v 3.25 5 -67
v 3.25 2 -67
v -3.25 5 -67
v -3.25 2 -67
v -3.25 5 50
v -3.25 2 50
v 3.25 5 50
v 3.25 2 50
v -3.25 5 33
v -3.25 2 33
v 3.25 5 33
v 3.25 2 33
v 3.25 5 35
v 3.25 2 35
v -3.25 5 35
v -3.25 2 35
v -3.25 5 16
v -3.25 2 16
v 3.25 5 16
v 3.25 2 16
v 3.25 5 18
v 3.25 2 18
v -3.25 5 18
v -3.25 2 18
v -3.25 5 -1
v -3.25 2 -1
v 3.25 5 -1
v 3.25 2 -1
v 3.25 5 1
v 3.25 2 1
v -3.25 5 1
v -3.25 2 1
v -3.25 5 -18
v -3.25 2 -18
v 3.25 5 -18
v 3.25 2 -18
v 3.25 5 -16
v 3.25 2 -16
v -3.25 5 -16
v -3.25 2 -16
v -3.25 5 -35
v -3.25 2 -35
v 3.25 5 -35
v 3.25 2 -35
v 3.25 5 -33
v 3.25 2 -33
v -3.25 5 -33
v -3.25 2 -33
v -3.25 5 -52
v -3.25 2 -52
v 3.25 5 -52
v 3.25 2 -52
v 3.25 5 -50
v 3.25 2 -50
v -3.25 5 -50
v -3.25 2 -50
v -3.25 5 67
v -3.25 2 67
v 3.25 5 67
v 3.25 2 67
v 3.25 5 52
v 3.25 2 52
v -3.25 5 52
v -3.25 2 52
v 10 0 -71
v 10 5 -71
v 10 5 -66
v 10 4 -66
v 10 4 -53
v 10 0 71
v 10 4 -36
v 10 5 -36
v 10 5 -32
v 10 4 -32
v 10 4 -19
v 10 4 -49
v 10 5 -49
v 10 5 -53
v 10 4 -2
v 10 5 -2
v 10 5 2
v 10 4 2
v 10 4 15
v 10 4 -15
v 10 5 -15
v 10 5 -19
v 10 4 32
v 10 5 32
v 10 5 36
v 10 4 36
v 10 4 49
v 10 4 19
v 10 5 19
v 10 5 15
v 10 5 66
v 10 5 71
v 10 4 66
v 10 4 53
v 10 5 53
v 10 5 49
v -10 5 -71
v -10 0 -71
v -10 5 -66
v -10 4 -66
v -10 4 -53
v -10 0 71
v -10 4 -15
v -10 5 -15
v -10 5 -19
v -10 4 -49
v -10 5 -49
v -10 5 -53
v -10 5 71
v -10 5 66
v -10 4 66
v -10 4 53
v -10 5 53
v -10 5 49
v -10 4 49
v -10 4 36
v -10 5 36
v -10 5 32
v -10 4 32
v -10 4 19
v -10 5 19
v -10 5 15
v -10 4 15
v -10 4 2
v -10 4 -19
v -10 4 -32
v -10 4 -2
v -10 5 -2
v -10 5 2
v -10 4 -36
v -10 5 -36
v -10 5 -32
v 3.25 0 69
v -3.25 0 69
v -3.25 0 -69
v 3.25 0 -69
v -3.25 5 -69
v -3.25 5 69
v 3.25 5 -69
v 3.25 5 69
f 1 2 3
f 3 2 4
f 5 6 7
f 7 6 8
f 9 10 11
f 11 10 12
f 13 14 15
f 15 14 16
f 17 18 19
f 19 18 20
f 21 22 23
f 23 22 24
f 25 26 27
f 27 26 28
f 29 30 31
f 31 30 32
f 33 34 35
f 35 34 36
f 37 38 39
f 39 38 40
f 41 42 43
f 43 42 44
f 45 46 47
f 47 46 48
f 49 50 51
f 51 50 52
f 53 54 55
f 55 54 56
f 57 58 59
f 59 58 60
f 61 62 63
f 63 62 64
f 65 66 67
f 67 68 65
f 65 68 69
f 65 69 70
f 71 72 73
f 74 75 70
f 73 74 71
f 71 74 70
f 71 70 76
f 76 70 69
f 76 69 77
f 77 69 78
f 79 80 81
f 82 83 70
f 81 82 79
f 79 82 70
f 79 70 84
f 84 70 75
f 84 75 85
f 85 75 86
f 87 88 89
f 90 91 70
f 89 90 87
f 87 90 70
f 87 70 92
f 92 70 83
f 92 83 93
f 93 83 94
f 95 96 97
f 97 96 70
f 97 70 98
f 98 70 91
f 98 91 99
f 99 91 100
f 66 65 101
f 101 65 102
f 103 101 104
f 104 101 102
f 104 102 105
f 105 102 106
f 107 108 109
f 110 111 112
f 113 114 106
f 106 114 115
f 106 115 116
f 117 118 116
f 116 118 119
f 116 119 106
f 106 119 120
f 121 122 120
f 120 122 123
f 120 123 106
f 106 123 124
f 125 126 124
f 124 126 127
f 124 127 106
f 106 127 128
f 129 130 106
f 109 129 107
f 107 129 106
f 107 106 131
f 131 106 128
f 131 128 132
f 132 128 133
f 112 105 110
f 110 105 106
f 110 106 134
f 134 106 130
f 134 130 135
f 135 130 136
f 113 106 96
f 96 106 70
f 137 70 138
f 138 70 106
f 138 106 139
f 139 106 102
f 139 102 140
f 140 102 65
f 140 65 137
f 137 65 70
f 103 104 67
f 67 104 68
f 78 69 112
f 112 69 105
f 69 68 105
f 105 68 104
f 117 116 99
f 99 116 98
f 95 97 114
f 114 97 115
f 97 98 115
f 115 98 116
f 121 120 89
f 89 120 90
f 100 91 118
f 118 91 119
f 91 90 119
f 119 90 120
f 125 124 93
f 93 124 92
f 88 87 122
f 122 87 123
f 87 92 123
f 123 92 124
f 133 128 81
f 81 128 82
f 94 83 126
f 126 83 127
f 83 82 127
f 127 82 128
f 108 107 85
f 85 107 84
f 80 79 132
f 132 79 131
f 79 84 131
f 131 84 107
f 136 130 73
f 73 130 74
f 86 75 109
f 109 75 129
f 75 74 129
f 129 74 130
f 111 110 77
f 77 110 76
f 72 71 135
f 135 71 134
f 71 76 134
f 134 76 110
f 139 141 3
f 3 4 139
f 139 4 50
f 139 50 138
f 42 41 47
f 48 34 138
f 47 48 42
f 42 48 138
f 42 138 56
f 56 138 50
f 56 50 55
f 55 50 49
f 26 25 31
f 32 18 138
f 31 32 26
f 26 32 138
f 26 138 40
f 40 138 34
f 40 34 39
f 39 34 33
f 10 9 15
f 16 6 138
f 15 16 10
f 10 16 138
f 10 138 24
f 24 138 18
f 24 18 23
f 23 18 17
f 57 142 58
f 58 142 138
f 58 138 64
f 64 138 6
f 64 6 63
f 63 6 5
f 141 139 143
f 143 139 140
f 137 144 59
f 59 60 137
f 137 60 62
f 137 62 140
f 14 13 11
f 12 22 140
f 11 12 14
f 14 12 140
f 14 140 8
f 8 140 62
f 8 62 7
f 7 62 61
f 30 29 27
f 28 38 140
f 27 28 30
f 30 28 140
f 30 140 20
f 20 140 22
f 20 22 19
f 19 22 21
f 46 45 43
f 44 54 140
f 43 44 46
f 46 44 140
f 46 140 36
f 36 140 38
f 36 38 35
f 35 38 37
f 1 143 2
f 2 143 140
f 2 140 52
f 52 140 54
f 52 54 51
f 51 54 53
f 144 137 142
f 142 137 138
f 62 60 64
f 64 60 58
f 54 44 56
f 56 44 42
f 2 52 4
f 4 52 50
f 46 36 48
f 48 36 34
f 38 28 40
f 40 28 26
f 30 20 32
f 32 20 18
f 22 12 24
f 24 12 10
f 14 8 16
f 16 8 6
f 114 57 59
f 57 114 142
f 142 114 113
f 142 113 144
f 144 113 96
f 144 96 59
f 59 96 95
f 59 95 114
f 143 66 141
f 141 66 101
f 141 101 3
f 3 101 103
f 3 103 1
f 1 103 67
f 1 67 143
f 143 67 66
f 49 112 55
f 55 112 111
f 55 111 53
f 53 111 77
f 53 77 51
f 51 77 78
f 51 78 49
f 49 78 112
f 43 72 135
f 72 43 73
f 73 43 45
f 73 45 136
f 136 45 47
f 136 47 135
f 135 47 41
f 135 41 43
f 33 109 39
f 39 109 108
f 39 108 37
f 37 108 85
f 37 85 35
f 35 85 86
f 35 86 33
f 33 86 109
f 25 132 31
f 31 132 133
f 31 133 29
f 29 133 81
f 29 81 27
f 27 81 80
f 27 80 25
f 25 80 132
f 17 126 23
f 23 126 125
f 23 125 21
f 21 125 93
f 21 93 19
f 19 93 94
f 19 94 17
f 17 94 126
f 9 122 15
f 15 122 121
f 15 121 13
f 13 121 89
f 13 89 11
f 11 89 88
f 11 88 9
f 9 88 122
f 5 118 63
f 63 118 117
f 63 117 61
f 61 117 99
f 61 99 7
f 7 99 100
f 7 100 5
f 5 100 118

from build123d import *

# Parameters (mm, degrees)
SKETCH1_W              = 20
SKETCH1_H              = 142
BOSS_EXTRUDE1_DEPTH    = 7
SKETCH2_W              = 20
SKETCH2_H              = 13
CUT_EXTRUDE1_DEPTH     = 3
LPATTERN1_COUNT        = 8
LPATTERN1_PITCH        = 17
CUT_EXTRUDE2_REACH     = 74.042
SKETCH4_W              = 6.5
SKETCH4_H              = 2
FILLET1_R              = 0.5
CHAMFER1_SIZE          = 2
LPATTERN2_COUNT        = 9
LPATTERN2_PITCH        = 17
FILLET1_OF_LPATTERN2_R = 0.5
SKETCH5_W              = 6.5
SKETCH5_H              = 15
CUT_EXTRUDE3_DEPTH     = 2
LPATTERN3_COUNT        = 8
LPATTERN3_PITCH        = 17
CUT_EXTRUDE4_REACH     = 144.524
SKETCH6_W              = 20
SKETCH6_H              = 2


with BuildPart() as part:
    # Sketch1 → Boss-Extrude1 (new body)
    with BuildSketch(Plane(origin=(0, 0, 0), x_dir=(1, 0, 0), z_dir=(0, 1, 0))):
        Rectangle(SKETCH1_W, SKETCH1_H)
    extrude(amount=BOSS_EXTRUDE1_DEPTH)

    # Sketch2 → Cut-Extrude1 (cut)
    with BuildSketch(Plane(origin=(0, 7, 0), x_dir=(1, 0, 0), z_dir=(0, 1, 0))):
        with Locations((0, 59.5)):
            Rectangle(SKETCH2_W, SKETCH2_H)
    cut_extrude1 = extrude(amount=-CUT_EXTRUDE1_DEPTH, mode=Mode.SUBTRACT)

    # LPattern1: Cut-Extrude1 ×8
    with Locations(*[(0, 0, i * LPATTERN1_PITCH) for i in range(1, LPATTERN1_COUNT)]):
        add(cut_extrude1, mode=Mode.SUBTRACT)

    # Sketch4 → Cut-Extrude2 (cut, up to next)
    with BuildSketch(Plane(origin=(0, 7, 0), x_dir=(1, 0, 0), z_dir=(0, 1, 0)), mode=Mode.PRIVATE) as cut_extrude2_sk1:
        with Locations((0, 68)):
            Rectangle(SKETCH4_W, SKETCH4_H)
    cut_extrude2_tool1 = extrude(cut_extrude2_sk1.sketch, amount=-CUT_EXTRUDE2_REACH, mode=Mode.PRIVATE) & part.part
    cut_extrude2 = cut_extrude2_tool1.solids().sort_by_distance((0, 7, -68))[0]
    add(cut_extrude2, mode=Mode.SUBTRACT)

    # Fillet1
    fillet1_edges = [part.edges().sort_by_distance(p)[0] for p in [
        (0, 7, -67),
        (0, 7, -69),
    ]]
    fillet(fillet1_edges, radius=FILLET1_R)

    # Chamfer1
    chamfer1_edges = [part.edges().sort_by_distance(p)[0] for p in [
        (-10, 7, -68.5),
        (10, 7, -68.5),
        (-10, 7, -51),
        (10, 7, 51),
        (10, 7, 34),
        (10, 7, 17),
        (10, 7, 0),
        (10, 7, -17),
        (10, 7, -34),
        (10, 7, -51),
        (-10, 7, -34),
        (-10, 7, -17),
        (-10, 7, 0),
        (-10, 7, 17),
        (-10, 7, 34),
        (-10, 7, 51),
        (-10, 7, 68.5),
        (10, 7, 68.5),
    ]]
    chamfer(chamfer1_edges, length=CHAMFER1_SIZE)

    # LPattern2: Cut-Extrude2 ×9
    with Locations(*[(0, 0, i * LPATTERN2_PITCH) for i in range(1, LPATTERN2_COUNT)]):
        add(cut_extrude2, mode=Mode.SUBTRACT)

    # Fillet1 of LPattern2
    fillet1_of_lpattern2_edges = [part.edges().sort_by_distance(p)[0] for p in [
        (0, 7, -50),
        (0, 7, -52),
        (0, 7, -33),
        (0, 7, -35),
        (0, 7, -16),
        (0, 7, -18),
        (0, 7, 1),
        (0, 7, -1),
        (0, 7, 18),
        (0, 7, 16),
        (0, 7, 35),
        (0, 7, 33),
        (0, 7, 52),
        (0, 7, 50),
        (0, 7, 69),
        (0, 7, 67),
    ]]
    fillet(fillet1_of_lpattern2_edges, radius=FILLET1_OF_LPATTERN2_R)

    # Sketch5 → Cut-Extrude3 (cut)
    with BuildSketch(Plane.XZ):
        with Locations((0, 59.5)):
            Rectangle(SKETCH5_W, SKETCH5_H)
    cut_extrude3 = extrude(amount=-CUT_EXTRUDE3_DEPTH, mode=Mode.SUBTRACT)

    # LPattern3: Cut-Extrude3 ×8
    with Locations(*[(0, 0, -i * LPATTERN3_PITCH) for i in range(1, LPATTERN3_COUNT)]):
        add(cut_extrude3, mode=Mode.SUBTRACT)

    # Cut-Extrude4: up to this face of the body (flat: up to its plane)
    cut_extrude4_end = Plane(part.part.faces().sort_by_distance((0, 3.416666667, 71))[0])
    # Sketch6 → Cut-Extrude4 (cut, up to the picked face)
    with BuildSketch(Plane(origin=(0, 0, -71), x_dir=(-1, 0, 0), z_dir=(0, 0, -1)), mode=Mode.PRIVATE) as cut_extrude4_sk1:
        with Locations((0, 6)):
            Rectangle(SKETCH6_W, SKETCH6_H)
    cut_extrude4_tool1 = split(extrude(cut_extrude4_sk1.sketch, amount=-CUT_EXTRUDE4_REACH, mode=Mode.PRIVATE), bisect_by=cut_extrude4_end, keep=Keep.BOTH, mode=Mode.PRIVATE)
    add(cut_extrude4_tool1.solids().sort_by(Axis((0, 6, -71), (0, 0, 1)))[0], mode=Mode.SUBTRACT)


solid = part.part
